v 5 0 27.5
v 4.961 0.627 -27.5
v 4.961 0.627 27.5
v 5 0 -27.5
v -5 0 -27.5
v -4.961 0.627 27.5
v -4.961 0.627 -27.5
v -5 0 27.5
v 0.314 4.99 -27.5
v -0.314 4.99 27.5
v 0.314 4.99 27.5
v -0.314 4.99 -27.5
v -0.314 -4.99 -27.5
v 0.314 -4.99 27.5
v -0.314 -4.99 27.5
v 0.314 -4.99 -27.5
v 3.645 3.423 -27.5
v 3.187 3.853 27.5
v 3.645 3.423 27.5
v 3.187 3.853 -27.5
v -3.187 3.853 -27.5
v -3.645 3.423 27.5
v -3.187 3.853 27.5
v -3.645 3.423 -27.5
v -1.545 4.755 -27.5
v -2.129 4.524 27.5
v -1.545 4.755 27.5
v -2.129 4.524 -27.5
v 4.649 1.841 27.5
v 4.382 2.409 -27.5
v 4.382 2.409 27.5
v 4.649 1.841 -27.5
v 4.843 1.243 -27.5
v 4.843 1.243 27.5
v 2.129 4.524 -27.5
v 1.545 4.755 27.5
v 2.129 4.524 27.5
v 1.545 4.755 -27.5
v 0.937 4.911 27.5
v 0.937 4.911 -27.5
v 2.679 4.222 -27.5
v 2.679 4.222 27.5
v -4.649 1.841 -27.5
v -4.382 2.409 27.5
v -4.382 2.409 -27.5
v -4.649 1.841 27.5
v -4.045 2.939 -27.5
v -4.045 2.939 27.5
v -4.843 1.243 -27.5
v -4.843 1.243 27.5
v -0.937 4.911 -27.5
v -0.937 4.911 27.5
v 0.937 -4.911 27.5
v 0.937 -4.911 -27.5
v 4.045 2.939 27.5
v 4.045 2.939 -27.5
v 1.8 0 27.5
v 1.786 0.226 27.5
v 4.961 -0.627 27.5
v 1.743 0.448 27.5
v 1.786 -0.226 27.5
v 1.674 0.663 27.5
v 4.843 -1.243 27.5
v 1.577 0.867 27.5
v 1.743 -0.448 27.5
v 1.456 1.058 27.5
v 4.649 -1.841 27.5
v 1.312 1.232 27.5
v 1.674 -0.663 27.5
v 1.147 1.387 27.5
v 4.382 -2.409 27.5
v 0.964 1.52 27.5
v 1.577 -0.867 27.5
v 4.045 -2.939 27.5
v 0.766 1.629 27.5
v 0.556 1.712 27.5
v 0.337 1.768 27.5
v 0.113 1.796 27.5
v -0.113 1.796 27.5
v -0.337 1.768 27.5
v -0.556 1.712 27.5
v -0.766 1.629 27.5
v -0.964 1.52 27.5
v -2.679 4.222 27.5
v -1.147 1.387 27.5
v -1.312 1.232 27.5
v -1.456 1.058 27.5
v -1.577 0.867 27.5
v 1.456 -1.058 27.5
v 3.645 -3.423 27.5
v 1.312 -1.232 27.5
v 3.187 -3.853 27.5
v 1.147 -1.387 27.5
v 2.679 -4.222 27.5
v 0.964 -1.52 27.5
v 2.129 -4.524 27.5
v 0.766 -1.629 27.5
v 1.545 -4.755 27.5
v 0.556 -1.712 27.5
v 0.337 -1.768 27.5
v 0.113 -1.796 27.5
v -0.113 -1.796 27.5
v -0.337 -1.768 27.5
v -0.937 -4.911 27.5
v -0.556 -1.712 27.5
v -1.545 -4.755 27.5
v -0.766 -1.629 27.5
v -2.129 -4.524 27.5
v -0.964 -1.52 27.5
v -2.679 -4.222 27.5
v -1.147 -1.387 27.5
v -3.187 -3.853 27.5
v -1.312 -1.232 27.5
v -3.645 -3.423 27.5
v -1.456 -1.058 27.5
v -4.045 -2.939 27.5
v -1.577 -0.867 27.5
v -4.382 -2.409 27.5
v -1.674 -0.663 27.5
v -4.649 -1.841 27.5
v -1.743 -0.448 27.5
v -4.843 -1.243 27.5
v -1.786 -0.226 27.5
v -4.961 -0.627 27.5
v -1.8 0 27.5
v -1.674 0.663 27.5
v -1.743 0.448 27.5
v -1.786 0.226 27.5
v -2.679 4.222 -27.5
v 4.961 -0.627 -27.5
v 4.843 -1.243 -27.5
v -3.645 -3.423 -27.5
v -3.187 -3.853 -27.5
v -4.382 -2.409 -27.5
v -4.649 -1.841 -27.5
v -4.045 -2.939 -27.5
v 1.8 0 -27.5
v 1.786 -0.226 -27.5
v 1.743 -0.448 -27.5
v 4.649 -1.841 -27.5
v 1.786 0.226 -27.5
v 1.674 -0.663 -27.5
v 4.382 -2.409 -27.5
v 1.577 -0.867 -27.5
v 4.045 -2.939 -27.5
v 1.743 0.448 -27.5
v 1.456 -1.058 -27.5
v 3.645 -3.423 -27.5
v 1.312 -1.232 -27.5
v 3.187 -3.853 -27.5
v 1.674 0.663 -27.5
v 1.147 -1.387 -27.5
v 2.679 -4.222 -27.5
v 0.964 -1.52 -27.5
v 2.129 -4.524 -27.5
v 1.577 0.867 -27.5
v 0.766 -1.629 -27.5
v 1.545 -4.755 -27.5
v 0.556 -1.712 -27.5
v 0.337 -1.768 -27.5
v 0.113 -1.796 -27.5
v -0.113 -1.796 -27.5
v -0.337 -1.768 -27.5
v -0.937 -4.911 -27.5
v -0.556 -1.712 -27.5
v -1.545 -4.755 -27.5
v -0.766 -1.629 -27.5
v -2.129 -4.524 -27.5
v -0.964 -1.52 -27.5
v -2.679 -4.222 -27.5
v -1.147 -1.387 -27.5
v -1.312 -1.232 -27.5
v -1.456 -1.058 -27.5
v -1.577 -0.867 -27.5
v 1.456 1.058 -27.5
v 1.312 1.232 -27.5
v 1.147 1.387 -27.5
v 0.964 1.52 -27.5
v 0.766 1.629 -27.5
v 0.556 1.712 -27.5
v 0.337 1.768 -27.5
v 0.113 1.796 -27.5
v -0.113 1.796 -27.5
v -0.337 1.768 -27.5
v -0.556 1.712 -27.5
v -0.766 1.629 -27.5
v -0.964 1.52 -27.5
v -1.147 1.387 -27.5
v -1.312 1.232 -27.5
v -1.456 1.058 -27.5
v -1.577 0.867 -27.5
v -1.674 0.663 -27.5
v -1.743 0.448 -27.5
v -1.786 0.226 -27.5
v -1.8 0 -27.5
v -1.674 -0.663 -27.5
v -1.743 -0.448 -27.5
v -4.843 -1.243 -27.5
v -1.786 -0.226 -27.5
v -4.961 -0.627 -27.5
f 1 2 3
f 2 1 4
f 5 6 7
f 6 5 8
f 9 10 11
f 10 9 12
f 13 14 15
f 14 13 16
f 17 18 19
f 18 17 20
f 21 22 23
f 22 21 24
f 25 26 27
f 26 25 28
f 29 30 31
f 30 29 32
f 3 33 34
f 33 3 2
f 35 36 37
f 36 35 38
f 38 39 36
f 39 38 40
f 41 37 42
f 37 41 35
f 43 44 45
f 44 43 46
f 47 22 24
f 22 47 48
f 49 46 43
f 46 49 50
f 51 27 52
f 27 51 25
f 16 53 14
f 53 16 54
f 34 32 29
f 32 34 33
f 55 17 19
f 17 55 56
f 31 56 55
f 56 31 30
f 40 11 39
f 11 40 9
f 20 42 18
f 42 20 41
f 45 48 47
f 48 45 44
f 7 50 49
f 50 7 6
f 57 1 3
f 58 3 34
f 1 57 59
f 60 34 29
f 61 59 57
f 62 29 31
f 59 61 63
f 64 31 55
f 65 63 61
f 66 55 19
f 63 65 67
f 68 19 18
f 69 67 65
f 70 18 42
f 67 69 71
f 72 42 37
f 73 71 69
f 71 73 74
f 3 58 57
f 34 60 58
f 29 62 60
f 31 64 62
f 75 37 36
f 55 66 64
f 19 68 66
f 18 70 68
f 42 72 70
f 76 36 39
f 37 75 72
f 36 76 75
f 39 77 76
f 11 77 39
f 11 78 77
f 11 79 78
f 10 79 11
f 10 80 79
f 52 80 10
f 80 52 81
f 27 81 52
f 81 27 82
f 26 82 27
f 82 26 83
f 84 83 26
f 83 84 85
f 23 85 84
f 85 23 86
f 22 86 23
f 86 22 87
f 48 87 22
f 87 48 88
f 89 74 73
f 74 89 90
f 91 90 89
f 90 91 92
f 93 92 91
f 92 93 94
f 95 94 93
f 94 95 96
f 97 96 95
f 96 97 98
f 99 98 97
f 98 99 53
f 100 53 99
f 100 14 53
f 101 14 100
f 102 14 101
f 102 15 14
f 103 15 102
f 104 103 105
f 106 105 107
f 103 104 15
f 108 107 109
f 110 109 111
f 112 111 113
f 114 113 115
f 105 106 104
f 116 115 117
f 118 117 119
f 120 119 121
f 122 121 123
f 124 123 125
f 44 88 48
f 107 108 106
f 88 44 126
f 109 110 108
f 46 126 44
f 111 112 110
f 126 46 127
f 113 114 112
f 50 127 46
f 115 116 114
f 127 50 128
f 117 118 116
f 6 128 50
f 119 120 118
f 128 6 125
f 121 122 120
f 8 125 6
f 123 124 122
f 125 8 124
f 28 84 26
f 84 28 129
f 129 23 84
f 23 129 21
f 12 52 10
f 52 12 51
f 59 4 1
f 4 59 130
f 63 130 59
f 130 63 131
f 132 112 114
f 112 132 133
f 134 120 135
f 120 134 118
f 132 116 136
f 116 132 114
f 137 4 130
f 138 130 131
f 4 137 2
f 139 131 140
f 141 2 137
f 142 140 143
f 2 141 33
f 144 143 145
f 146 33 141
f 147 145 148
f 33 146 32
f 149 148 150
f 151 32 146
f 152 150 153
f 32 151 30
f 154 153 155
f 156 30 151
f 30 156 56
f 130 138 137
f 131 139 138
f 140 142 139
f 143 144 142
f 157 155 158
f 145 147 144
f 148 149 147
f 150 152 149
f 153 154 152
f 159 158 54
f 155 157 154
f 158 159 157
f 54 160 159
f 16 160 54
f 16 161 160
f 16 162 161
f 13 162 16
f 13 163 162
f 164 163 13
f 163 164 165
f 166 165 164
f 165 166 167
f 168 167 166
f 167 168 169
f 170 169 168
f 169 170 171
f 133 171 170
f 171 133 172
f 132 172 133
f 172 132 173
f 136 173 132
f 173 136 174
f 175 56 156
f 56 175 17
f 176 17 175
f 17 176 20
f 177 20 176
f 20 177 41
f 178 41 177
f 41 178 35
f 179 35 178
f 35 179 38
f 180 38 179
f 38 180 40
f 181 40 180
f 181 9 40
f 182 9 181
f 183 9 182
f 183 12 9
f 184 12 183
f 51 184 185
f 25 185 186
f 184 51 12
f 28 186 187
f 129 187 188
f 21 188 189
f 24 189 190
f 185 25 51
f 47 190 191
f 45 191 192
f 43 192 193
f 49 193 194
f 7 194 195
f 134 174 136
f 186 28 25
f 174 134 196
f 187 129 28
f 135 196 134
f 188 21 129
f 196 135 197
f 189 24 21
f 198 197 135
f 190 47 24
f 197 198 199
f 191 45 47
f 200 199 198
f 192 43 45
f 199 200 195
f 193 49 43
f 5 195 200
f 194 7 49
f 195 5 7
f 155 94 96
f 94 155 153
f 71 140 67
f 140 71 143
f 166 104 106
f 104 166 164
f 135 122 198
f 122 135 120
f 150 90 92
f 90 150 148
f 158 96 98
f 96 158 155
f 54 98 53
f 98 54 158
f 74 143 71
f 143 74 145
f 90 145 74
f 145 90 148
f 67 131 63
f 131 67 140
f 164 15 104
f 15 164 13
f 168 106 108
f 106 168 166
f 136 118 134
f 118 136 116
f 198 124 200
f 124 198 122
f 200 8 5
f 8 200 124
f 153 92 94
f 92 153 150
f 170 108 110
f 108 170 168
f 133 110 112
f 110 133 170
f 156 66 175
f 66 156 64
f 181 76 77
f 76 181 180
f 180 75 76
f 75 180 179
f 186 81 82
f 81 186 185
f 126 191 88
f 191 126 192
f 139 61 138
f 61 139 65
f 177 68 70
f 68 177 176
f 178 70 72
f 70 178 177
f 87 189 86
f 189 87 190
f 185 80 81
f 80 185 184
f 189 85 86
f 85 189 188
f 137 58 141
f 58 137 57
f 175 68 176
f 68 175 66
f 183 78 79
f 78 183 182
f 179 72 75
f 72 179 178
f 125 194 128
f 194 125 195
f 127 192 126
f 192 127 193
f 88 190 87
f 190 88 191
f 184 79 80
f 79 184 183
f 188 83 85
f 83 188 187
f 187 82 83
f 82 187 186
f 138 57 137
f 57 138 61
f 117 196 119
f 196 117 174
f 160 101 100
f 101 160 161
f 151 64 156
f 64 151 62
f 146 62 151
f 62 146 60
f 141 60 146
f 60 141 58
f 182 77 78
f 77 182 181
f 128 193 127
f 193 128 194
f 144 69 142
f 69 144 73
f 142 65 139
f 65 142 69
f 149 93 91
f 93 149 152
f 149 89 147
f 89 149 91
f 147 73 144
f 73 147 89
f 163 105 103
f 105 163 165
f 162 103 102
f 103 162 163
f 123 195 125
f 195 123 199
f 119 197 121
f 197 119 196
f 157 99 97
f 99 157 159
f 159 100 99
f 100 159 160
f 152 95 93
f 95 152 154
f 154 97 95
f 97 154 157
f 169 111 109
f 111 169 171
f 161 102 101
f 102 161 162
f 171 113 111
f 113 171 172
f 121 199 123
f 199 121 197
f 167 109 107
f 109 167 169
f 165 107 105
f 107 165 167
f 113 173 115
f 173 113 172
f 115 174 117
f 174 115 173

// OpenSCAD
$fn = 50;


difference() {
	union() {
		translate(v = [0, 0, -27.5000000000]) {
			cylinder(h = 55, r = 5.0000000000);
		}
	}
	union() {
		translate(v = [0, 0, -100.0000000000]) {
			cylinder(h = 200, r = 1.8000000000);
		}
	}
}
